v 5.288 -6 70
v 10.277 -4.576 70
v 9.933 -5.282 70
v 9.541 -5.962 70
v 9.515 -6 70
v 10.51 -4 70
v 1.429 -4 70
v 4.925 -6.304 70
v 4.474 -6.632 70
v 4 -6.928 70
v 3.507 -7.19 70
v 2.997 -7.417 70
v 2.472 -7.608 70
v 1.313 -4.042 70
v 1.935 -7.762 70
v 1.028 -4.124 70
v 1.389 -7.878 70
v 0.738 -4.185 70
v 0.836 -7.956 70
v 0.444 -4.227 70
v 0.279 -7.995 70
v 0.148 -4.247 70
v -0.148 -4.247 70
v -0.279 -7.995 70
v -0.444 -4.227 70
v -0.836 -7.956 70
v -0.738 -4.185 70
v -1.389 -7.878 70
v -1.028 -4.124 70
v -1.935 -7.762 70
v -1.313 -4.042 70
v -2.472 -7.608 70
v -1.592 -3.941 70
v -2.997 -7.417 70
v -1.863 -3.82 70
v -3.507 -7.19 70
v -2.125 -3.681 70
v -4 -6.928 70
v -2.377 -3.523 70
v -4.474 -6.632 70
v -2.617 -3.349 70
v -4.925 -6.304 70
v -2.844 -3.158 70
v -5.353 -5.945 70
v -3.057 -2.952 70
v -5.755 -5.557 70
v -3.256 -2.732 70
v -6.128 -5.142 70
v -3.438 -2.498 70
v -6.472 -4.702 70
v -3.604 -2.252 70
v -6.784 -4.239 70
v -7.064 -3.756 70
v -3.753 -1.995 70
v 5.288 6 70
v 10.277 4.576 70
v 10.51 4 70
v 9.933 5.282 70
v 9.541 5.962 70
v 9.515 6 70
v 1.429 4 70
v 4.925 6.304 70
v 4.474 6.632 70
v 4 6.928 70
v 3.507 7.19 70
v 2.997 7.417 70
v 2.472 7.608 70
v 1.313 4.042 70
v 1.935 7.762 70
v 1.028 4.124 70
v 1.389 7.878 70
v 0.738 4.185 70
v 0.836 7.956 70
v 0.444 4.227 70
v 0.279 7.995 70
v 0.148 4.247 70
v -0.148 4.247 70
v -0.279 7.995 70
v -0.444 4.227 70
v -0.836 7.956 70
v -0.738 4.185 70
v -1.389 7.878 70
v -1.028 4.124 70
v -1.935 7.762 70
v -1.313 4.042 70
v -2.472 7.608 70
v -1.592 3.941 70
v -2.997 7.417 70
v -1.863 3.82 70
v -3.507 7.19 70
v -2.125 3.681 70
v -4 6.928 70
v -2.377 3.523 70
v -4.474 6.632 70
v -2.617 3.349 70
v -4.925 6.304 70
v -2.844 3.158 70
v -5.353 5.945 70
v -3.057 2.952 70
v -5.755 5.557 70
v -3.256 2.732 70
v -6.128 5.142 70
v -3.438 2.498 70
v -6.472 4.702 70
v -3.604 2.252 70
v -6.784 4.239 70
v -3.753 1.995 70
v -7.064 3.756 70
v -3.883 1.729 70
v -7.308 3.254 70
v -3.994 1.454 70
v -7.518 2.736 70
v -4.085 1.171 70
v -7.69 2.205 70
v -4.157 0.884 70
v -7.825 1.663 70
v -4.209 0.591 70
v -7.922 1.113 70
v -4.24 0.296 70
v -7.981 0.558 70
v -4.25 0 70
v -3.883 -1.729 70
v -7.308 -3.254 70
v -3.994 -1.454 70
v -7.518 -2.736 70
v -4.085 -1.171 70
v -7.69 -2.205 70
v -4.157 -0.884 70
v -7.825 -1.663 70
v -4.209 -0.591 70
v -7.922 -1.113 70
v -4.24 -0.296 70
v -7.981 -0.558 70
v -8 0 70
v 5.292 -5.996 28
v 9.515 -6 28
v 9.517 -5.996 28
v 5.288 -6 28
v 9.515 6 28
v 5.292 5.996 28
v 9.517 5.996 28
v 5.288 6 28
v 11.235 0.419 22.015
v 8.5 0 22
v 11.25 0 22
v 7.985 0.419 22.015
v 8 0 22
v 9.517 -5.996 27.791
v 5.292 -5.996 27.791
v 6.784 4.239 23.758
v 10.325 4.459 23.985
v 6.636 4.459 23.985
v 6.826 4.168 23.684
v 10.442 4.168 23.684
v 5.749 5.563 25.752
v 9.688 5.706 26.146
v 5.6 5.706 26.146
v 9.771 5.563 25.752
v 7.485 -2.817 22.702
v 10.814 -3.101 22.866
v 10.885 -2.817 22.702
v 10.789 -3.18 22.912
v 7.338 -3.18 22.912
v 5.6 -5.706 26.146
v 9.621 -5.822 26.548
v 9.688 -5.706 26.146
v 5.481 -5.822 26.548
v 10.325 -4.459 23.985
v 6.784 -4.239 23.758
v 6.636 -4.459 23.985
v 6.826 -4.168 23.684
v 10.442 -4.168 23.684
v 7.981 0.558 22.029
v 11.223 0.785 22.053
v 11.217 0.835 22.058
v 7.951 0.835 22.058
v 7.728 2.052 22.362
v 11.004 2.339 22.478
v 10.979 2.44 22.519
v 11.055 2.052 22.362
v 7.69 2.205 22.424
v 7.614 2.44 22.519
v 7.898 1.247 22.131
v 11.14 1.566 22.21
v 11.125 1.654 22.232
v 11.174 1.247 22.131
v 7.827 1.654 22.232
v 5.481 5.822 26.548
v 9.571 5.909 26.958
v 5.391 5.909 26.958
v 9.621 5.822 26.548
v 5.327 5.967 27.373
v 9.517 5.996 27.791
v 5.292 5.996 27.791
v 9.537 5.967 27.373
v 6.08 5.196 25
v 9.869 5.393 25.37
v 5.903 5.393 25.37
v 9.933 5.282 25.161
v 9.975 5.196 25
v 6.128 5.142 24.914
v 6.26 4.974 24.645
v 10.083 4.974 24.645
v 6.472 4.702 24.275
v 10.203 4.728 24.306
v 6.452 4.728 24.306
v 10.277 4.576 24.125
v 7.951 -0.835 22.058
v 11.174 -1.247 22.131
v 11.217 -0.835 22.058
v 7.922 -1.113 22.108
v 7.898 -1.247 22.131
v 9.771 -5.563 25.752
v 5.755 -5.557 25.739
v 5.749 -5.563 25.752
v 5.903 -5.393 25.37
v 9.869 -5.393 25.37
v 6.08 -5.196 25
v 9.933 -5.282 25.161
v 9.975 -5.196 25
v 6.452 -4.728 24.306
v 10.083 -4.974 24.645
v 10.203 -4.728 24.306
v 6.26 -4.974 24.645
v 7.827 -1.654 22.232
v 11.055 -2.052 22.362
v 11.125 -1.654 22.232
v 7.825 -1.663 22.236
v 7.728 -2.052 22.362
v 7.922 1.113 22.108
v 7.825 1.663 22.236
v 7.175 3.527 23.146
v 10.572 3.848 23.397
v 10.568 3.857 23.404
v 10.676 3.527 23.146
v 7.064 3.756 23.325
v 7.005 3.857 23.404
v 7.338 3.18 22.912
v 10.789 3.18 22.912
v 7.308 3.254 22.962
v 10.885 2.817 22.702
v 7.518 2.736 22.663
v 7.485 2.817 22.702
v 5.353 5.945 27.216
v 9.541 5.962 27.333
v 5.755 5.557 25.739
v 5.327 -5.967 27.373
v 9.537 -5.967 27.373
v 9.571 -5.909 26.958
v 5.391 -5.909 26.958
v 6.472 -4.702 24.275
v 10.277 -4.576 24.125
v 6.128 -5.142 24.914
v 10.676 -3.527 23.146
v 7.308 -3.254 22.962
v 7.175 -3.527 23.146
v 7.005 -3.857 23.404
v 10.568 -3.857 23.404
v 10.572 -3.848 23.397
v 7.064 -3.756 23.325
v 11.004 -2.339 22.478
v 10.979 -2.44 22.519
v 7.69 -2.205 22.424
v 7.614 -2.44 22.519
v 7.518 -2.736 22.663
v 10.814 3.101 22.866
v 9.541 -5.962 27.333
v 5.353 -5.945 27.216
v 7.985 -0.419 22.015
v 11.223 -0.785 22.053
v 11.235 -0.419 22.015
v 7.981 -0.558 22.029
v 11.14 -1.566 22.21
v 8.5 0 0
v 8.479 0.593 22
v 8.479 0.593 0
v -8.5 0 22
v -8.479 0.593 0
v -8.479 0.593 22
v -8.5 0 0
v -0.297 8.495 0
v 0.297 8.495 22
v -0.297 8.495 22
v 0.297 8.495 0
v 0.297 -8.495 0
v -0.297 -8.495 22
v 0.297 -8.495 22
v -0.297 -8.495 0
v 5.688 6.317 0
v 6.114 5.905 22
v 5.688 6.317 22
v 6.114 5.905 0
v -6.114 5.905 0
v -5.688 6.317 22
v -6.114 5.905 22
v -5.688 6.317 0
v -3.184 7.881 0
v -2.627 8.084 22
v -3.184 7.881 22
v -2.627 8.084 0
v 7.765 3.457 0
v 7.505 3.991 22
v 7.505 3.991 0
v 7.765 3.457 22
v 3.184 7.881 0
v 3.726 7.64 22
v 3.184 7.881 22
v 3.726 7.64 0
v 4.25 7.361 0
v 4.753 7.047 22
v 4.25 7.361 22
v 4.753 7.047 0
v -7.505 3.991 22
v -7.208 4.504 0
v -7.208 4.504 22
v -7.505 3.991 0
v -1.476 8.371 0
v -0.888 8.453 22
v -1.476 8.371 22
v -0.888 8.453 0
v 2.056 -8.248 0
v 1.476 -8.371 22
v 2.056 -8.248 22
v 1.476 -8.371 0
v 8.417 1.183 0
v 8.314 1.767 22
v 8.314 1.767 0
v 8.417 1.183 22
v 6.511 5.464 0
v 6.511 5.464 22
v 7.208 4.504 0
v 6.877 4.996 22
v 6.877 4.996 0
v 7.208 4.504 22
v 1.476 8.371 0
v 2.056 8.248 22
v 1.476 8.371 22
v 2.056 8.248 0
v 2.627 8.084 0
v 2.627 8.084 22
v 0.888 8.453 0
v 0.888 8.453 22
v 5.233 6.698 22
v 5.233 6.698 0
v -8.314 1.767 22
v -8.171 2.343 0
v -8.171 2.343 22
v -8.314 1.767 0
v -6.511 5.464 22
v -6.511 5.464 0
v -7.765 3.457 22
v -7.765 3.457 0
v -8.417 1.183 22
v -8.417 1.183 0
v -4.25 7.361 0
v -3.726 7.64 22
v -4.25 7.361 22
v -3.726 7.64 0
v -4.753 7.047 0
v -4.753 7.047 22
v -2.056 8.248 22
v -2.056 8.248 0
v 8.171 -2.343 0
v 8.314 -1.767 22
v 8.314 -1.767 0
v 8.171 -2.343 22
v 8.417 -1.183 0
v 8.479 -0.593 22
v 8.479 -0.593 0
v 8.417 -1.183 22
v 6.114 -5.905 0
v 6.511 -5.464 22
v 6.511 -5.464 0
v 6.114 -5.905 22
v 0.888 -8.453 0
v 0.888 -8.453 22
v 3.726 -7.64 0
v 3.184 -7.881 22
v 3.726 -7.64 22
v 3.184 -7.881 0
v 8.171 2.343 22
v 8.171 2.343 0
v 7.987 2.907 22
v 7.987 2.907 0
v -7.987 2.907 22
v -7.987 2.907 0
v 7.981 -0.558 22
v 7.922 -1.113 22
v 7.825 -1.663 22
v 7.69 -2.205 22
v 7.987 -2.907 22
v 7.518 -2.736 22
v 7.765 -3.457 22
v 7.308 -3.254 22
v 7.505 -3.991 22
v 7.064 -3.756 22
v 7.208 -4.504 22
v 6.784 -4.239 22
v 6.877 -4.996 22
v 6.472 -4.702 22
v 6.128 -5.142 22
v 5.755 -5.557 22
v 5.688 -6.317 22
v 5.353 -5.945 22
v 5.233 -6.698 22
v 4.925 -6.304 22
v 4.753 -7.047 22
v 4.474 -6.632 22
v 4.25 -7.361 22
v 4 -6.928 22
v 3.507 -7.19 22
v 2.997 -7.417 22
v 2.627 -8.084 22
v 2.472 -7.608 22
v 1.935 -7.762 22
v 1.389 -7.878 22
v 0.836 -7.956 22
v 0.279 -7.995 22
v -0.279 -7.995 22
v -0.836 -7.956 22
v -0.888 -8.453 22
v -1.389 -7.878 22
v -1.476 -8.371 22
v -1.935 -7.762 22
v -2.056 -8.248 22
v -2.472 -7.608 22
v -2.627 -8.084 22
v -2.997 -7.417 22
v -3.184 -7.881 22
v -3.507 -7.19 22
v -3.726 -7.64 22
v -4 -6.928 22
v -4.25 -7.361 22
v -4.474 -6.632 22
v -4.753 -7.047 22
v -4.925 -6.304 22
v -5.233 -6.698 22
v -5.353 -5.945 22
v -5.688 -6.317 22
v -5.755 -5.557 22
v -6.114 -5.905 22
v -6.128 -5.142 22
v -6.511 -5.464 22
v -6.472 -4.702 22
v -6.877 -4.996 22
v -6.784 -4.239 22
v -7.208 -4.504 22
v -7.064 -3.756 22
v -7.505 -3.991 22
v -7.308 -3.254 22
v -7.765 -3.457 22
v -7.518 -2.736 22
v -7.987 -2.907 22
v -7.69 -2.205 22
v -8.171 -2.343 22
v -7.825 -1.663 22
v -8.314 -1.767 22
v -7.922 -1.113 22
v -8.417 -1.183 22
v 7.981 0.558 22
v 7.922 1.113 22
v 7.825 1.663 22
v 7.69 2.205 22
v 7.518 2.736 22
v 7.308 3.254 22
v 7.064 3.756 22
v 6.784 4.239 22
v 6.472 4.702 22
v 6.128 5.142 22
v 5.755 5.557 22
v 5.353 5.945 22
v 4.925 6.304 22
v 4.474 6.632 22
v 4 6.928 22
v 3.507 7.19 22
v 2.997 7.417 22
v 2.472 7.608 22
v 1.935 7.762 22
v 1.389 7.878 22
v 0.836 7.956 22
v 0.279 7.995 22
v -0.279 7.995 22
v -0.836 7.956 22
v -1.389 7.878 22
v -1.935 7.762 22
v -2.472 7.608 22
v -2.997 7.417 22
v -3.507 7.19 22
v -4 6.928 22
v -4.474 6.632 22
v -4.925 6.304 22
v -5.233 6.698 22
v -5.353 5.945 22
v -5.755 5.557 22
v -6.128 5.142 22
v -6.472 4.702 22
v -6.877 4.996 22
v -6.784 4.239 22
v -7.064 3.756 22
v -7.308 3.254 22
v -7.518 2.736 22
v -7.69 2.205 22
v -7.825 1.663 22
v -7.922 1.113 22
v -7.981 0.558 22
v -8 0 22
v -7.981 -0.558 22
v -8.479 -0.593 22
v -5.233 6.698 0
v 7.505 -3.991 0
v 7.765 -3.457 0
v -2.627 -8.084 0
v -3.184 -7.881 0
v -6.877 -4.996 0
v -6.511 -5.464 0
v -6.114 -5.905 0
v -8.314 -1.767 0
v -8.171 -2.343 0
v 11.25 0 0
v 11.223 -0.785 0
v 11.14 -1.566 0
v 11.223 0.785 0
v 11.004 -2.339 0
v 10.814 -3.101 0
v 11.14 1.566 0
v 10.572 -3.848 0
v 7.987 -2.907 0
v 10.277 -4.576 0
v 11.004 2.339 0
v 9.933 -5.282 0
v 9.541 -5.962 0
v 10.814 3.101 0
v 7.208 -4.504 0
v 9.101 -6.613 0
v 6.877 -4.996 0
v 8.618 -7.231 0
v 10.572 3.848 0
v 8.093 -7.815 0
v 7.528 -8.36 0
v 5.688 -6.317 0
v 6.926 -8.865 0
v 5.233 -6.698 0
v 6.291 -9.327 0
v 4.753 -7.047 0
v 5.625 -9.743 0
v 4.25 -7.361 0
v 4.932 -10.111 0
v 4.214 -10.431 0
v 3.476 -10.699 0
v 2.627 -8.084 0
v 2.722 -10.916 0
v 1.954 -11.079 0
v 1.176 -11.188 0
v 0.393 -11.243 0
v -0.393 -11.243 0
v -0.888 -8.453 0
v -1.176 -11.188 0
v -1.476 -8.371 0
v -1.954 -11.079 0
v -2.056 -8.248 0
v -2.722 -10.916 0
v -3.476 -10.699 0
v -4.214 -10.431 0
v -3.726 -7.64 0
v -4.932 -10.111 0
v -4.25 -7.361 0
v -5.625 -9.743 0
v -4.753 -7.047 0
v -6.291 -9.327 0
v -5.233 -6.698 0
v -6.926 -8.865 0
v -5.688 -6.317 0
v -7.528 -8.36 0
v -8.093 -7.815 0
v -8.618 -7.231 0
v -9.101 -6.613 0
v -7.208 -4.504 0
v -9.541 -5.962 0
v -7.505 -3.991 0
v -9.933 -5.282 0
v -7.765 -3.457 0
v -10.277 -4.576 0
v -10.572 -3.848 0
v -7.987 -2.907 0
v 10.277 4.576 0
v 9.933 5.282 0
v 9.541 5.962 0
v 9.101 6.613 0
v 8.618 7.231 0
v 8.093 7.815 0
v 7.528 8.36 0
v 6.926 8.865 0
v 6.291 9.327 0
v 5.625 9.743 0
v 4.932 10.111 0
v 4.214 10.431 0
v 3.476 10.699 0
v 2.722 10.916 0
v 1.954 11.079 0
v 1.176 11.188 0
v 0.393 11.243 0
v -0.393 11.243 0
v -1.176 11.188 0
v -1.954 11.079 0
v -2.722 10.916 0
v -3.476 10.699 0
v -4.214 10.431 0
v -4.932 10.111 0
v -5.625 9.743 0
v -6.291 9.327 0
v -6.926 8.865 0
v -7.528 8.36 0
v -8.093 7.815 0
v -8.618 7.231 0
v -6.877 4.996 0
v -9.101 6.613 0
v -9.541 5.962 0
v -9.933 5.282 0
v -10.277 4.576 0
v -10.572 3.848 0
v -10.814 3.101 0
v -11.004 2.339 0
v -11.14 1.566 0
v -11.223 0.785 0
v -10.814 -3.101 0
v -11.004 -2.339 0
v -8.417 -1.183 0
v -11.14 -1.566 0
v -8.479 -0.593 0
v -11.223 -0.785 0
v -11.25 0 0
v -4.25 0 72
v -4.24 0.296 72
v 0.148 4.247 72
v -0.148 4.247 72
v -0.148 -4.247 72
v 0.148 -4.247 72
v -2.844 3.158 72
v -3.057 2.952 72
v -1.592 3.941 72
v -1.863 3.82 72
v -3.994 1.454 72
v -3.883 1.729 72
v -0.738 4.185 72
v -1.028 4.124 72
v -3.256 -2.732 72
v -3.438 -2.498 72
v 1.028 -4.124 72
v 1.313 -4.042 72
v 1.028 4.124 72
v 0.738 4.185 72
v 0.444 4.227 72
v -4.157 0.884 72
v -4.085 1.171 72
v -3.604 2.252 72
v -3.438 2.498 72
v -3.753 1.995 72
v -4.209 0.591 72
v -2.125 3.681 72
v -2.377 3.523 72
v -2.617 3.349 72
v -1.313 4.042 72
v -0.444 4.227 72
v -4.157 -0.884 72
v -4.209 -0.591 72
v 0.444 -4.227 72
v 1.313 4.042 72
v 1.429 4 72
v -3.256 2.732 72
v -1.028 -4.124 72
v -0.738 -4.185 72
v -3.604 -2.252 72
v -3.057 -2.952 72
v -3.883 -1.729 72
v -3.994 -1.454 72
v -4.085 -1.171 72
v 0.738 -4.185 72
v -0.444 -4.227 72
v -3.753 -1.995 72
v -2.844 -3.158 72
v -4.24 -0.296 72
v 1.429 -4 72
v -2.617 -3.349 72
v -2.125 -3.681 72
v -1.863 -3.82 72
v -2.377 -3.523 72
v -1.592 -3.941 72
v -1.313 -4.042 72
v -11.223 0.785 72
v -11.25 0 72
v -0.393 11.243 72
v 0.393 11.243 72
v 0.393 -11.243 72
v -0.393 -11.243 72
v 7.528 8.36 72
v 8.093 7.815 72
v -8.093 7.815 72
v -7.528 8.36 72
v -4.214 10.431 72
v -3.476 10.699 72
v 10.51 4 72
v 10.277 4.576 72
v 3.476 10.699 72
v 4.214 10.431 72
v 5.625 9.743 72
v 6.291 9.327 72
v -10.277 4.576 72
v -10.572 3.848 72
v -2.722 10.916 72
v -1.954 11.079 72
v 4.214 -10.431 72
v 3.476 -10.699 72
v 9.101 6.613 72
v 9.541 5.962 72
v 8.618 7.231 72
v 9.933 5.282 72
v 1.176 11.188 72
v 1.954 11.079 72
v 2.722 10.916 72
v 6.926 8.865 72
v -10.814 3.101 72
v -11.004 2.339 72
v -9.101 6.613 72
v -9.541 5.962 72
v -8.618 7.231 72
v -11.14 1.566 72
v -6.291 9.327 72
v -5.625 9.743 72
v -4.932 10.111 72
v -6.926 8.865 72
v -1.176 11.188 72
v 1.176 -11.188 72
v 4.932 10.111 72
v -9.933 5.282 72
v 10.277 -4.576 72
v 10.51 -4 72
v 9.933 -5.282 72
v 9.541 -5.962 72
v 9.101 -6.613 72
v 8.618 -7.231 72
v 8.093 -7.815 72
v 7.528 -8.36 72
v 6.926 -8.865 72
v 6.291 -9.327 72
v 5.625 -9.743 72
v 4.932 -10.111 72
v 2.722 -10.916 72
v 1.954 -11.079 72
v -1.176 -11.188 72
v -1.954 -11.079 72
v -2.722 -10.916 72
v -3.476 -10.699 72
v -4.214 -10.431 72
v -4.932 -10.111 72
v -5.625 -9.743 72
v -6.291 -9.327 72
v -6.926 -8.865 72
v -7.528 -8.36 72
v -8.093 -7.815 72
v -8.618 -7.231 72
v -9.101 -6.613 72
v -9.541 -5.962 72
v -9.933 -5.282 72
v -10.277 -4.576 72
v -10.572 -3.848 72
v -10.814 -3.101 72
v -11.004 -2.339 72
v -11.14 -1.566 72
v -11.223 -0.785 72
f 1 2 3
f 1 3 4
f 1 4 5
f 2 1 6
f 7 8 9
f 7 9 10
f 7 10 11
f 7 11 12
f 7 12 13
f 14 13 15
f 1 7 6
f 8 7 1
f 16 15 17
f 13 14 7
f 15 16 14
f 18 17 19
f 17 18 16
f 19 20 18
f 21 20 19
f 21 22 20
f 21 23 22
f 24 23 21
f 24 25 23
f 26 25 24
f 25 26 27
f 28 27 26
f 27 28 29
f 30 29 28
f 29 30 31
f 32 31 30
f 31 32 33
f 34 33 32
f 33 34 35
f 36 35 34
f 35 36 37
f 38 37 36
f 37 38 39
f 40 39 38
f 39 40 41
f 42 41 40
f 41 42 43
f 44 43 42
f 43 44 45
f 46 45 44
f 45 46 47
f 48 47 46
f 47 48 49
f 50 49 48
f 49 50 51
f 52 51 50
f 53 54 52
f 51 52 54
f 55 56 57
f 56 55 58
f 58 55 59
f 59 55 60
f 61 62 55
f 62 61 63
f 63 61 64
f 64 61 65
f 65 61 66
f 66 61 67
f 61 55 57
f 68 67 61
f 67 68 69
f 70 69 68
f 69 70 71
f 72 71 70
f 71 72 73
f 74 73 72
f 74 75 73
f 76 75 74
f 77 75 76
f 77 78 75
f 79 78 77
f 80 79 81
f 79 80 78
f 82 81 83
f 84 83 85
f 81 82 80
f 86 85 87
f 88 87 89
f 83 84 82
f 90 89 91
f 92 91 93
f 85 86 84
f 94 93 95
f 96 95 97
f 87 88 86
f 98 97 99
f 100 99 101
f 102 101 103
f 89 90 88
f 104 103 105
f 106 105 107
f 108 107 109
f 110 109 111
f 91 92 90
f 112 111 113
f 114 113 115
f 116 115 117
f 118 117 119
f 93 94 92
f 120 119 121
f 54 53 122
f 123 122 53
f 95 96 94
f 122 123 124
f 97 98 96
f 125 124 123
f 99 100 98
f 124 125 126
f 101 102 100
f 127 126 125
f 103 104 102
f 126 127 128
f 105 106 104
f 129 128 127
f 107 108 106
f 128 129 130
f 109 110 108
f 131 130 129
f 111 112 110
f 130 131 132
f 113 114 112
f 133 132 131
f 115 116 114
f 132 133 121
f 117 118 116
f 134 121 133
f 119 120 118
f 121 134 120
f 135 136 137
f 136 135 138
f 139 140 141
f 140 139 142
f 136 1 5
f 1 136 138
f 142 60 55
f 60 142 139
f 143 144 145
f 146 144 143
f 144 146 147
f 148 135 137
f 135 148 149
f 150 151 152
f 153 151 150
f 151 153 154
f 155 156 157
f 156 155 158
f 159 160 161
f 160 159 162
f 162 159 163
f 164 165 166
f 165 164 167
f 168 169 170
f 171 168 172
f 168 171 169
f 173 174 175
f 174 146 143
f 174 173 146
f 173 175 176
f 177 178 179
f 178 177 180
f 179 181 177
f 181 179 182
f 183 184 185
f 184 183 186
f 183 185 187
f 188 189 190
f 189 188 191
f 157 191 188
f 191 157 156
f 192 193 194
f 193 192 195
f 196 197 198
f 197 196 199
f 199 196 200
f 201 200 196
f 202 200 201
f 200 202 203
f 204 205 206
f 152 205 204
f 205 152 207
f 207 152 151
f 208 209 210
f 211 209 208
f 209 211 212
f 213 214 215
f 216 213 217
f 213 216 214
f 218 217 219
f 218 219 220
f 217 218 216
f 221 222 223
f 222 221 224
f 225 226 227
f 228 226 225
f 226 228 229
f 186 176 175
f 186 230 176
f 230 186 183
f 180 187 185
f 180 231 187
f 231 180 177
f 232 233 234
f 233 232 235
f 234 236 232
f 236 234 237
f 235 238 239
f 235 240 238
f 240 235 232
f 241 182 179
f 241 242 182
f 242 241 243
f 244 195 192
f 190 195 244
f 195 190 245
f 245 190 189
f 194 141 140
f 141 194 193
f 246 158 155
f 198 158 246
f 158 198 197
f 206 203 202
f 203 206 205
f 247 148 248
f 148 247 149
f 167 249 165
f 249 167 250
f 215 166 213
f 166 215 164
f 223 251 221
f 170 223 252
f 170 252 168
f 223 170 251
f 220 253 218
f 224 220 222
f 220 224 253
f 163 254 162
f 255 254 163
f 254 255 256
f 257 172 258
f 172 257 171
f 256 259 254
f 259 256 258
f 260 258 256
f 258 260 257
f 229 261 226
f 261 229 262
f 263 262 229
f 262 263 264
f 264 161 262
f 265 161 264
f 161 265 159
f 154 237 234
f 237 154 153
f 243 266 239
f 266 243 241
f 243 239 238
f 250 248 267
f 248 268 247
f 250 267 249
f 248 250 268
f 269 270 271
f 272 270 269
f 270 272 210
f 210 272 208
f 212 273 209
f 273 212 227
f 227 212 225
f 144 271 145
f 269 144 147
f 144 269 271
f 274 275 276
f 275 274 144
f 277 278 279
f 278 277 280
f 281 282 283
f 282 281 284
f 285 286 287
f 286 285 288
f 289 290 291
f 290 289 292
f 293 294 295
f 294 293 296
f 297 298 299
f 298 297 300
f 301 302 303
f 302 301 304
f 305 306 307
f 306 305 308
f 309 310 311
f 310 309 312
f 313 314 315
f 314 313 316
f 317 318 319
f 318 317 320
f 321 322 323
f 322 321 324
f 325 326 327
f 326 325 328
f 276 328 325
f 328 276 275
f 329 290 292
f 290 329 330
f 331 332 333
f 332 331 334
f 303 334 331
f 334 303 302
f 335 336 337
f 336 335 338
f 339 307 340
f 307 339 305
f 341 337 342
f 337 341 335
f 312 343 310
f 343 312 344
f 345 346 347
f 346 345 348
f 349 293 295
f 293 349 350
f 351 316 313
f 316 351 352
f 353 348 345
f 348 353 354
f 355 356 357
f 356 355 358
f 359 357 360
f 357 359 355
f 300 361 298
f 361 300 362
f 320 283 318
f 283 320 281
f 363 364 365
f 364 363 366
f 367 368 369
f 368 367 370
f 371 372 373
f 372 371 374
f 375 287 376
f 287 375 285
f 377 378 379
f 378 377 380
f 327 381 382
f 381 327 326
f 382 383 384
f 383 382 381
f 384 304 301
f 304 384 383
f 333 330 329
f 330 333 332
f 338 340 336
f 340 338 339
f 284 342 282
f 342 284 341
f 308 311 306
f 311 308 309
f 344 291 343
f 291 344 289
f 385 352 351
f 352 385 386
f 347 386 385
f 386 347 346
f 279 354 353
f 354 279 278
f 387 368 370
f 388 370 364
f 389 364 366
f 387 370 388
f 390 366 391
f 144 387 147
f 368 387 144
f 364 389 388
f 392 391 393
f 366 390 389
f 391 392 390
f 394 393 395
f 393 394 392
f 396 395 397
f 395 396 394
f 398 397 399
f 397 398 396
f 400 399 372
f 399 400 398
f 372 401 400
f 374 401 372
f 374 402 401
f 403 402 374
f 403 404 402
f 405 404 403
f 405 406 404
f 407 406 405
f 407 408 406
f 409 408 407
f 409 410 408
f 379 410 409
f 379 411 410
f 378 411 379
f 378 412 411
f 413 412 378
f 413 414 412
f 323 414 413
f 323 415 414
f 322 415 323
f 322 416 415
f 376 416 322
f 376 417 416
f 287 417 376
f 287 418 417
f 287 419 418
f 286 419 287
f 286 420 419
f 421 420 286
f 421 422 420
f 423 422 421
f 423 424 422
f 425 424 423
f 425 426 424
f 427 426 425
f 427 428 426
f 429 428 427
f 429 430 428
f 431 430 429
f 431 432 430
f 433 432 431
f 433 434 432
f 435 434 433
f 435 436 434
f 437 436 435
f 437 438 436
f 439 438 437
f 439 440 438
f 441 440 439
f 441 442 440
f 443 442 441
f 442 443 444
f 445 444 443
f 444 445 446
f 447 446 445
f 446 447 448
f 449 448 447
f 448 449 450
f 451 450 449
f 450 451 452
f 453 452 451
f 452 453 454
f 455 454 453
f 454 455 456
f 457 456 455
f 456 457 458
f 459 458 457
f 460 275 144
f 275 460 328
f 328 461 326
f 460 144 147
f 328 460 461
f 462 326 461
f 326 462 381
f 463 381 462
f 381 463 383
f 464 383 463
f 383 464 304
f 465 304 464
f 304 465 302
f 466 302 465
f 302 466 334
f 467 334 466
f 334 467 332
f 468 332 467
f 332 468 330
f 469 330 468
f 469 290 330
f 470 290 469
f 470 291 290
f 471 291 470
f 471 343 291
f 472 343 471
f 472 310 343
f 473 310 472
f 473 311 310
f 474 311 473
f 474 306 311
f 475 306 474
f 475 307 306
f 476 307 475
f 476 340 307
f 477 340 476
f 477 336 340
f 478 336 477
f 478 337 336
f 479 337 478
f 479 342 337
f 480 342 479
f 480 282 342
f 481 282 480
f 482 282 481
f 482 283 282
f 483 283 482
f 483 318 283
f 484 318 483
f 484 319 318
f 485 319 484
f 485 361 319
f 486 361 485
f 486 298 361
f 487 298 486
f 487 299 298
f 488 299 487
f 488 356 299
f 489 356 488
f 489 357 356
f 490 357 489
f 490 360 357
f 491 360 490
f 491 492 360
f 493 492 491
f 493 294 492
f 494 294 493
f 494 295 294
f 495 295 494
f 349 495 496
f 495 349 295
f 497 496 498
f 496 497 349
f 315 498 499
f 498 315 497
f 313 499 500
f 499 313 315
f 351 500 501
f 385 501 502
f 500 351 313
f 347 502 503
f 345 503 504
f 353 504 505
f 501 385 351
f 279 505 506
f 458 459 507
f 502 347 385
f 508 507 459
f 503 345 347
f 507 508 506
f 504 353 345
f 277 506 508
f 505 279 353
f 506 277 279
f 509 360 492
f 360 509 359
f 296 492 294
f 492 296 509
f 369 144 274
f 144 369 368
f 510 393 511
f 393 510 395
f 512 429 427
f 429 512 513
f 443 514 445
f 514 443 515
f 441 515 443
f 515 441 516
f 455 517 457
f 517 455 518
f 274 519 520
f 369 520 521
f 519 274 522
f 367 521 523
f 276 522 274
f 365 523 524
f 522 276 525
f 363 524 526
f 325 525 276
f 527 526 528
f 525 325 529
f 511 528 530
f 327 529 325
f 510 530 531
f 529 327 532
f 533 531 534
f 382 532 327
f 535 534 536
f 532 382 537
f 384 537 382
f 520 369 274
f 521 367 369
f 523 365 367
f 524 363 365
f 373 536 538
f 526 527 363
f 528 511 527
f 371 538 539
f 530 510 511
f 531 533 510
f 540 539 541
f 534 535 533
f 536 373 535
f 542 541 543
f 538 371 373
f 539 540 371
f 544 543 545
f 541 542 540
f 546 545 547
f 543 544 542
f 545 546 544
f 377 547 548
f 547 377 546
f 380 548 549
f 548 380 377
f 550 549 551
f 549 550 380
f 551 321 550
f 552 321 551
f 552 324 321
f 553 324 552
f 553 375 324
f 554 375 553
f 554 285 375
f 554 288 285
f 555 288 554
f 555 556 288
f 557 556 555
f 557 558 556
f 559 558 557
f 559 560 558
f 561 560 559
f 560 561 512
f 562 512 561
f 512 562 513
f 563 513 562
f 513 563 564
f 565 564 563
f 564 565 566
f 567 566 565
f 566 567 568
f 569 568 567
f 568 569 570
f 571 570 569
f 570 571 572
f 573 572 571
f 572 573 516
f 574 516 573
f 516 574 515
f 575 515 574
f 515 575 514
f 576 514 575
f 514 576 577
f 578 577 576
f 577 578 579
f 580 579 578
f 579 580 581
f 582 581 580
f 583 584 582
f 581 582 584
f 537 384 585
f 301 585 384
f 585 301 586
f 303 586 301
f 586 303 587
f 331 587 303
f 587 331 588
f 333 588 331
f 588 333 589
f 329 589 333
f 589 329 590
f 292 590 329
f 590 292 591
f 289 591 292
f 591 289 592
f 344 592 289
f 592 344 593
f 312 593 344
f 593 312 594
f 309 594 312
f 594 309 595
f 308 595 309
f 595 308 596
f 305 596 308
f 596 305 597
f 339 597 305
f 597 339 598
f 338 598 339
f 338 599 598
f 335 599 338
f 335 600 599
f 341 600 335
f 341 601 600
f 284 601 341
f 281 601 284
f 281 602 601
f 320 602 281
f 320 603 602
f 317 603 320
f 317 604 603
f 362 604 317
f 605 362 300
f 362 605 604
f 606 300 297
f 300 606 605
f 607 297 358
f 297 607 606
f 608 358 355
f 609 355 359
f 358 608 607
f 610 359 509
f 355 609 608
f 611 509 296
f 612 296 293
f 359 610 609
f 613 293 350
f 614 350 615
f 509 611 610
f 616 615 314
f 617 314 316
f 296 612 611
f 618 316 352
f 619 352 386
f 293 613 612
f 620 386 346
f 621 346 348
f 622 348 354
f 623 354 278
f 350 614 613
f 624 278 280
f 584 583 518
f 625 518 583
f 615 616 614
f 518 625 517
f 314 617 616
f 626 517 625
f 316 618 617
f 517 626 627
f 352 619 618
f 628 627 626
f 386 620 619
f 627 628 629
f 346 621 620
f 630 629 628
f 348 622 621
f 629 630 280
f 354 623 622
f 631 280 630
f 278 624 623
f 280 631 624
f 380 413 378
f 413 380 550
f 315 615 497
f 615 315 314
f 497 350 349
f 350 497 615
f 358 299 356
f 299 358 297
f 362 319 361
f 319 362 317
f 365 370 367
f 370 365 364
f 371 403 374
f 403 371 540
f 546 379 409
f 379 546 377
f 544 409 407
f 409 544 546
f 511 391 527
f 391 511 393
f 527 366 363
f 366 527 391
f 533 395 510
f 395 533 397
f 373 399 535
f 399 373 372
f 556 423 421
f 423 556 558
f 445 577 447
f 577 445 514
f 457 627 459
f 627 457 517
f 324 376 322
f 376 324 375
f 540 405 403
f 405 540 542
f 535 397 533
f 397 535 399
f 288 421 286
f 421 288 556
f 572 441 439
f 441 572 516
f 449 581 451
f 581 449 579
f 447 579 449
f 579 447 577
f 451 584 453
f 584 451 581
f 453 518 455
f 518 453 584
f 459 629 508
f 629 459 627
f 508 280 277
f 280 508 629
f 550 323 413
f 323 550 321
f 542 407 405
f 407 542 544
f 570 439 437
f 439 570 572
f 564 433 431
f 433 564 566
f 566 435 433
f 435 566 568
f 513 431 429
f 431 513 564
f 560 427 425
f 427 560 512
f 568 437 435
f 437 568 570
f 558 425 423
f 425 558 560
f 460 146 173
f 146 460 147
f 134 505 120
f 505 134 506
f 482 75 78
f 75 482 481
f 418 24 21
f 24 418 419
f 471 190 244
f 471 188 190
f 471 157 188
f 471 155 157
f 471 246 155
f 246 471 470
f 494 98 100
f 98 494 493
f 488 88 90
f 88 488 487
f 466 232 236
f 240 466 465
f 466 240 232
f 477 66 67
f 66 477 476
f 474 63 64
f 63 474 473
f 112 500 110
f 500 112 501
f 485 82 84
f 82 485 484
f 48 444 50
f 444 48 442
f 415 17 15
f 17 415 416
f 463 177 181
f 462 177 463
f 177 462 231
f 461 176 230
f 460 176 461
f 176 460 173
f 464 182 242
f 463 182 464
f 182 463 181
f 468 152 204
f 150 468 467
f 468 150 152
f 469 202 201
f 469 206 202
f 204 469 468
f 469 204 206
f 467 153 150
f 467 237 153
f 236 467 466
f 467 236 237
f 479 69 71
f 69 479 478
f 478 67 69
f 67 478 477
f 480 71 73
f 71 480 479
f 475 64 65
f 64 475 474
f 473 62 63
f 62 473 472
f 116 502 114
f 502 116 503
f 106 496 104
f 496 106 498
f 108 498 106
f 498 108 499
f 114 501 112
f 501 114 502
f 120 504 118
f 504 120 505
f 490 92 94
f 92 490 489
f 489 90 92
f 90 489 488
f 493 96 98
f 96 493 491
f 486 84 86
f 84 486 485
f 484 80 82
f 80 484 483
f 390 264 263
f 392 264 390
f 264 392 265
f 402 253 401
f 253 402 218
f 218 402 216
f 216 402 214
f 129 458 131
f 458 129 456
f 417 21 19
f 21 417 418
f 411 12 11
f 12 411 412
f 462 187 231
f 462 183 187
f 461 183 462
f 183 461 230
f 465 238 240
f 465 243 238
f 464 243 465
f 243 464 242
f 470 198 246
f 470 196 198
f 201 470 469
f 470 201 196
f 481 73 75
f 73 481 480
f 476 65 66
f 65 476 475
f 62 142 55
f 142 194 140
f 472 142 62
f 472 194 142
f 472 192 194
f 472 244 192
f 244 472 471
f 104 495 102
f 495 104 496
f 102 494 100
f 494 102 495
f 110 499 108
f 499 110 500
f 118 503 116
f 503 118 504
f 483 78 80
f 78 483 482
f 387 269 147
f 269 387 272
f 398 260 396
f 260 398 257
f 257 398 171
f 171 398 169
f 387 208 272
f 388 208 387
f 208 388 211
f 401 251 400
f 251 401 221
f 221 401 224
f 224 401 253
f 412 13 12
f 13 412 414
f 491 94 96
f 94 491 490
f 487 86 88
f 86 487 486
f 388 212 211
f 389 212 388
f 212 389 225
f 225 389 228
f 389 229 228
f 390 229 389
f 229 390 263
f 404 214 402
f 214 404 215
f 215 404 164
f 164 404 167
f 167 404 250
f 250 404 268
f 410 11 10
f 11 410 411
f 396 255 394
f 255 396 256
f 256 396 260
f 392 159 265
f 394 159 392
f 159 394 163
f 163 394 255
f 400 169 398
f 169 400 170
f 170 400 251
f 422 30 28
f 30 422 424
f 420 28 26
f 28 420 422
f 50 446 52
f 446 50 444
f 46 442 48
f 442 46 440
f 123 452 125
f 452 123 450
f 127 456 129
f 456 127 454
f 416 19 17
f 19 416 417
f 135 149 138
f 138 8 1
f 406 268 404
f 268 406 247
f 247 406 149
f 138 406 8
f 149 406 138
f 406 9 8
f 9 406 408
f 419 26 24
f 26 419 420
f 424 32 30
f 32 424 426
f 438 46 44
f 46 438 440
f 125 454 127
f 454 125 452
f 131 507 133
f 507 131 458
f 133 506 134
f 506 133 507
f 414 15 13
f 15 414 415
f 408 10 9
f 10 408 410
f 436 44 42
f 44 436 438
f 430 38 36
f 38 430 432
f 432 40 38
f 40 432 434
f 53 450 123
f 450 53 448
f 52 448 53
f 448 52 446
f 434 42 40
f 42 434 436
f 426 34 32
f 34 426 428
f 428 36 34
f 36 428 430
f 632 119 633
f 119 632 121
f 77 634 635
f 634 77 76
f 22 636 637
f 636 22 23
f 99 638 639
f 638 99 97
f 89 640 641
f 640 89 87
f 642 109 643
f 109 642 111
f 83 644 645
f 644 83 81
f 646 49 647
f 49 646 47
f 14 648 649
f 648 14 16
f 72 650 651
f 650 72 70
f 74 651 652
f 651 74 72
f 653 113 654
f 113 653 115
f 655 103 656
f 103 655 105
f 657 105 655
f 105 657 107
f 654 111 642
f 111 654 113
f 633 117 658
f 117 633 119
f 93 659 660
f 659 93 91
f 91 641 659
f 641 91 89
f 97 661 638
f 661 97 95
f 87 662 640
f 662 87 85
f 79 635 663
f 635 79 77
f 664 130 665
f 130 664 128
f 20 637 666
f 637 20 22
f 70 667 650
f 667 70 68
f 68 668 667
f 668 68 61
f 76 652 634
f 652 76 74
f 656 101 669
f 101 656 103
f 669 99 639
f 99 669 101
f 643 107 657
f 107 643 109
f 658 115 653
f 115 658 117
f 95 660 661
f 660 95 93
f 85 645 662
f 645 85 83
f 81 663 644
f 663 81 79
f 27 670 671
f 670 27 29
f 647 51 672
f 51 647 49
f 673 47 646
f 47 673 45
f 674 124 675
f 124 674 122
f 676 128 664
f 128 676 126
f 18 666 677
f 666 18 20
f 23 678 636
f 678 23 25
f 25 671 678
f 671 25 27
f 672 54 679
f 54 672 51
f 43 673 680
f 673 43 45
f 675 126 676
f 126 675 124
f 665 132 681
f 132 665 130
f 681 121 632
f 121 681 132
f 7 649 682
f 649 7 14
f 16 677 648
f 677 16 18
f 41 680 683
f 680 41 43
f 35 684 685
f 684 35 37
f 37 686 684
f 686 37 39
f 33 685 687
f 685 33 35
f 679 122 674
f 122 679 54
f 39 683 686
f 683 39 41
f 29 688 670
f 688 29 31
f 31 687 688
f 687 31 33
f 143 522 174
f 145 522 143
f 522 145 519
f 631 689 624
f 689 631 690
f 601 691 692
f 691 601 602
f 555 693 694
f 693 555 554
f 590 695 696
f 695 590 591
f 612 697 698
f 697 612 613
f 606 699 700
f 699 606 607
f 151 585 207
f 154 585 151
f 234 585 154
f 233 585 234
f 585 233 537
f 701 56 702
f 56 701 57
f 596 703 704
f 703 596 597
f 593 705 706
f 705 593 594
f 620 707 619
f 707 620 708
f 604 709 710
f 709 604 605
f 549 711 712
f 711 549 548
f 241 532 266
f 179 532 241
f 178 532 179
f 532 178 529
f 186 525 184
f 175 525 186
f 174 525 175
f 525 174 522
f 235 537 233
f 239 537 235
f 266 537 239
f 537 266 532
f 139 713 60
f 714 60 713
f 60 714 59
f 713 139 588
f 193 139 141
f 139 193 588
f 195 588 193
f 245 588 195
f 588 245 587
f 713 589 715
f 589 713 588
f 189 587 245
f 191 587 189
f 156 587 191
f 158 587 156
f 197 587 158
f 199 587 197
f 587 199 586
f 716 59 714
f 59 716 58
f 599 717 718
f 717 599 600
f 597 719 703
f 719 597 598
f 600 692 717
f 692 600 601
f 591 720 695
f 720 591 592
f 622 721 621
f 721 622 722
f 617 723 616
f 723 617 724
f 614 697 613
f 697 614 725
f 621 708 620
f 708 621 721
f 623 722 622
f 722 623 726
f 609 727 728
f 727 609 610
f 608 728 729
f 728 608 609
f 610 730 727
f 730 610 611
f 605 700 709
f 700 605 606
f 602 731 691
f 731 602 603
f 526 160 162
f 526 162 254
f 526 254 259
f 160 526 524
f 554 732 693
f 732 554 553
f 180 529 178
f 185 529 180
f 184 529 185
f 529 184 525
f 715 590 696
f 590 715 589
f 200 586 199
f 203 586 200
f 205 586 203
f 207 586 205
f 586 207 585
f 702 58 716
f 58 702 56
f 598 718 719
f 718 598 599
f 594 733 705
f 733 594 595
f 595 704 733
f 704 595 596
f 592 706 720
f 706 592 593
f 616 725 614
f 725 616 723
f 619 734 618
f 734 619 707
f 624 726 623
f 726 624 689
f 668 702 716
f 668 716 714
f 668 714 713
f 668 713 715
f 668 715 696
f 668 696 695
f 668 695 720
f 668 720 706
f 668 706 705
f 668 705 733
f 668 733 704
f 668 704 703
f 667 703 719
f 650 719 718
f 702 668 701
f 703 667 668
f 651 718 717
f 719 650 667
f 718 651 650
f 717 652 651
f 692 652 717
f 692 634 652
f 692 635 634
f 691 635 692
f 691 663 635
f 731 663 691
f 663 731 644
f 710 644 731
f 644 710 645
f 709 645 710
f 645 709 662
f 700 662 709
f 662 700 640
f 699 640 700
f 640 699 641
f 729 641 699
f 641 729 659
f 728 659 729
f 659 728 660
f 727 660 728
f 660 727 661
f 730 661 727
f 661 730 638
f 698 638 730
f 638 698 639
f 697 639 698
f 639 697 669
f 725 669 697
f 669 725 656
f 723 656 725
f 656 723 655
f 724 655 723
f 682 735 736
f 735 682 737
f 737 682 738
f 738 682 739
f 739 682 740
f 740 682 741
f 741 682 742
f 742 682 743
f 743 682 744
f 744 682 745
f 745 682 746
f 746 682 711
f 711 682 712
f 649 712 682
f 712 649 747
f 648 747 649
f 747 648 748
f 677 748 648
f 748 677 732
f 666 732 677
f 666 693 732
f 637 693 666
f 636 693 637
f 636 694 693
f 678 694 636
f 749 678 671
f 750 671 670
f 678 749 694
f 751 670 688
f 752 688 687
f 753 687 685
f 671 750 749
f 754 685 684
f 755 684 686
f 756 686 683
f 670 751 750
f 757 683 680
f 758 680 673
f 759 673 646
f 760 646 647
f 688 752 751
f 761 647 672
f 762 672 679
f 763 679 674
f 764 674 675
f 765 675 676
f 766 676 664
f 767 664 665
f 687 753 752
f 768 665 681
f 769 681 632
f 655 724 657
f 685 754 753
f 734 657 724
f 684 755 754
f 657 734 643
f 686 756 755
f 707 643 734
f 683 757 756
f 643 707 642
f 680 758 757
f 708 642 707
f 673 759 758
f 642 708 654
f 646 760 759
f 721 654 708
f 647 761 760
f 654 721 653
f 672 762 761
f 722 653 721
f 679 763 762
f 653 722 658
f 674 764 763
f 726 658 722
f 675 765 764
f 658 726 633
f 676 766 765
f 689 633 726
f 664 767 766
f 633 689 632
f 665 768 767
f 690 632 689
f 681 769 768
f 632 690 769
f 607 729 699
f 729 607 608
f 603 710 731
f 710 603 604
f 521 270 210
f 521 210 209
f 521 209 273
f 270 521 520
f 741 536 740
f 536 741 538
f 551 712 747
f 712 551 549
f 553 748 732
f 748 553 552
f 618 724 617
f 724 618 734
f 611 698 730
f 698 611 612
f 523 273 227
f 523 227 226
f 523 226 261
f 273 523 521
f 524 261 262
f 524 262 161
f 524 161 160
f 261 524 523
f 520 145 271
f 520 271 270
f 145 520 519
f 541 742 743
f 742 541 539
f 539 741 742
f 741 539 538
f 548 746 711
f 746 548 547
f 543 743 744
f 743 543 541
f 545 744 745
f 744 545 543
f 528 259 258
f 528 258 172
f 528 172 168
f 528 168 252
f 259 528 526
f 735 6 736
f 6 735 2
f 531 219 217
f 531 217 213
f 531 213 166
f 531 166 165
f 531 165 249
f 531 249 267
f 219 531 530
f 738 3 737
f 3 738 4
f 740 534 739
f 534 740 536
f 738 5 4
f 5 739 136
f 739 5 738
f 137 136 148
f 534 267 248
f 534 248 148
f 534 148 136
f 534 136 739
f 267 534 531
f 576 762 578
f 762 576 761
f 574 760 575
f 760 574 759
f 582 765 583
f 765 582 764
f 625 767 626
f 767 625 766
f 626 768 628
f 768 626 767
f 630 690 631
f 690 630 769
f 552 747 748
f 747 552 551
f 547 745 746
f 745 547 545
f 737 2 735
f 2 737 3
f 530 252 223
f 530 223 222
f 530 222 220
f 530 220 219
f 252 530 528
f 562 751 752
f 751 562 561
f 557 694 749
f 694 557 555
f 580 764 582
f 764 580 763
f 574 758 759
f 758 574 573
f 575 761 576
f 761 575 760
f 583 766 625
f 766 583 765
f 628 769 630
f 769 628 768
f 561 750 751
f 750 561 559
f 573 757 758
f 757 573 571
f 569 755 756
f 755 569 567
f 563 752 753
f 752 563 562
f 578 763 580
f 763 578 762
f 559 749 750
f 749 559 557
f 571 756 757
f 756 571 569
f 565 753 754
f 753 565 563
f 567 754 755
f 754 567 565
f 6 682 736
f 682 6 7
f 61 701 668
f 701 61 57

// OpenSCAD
$fa = $preview ? 8 : 4;
$fs = $preview ? 3 : 0.25;

module achse(){
	color("brown")cylinder(d=17, h=22);
	translate([0,0,20]){
		//cylinder(d=15.5, h=50);
		cylinder(d=16, h=50);
	}
	cylinder(d=8.5, h=500);
}


difference()
{
	cylinder(d=22.5, h=72);
	achse();
	translate([0,-12/2,(50+20)-42]) union(){
		cube([50,12,42]);
		translate([0,12/2, 0]) rotate([0,90,0])cylinder(d=12, h=50);
	}
	translate([0,-8/2,50]) cube([100,8,100]);
}
